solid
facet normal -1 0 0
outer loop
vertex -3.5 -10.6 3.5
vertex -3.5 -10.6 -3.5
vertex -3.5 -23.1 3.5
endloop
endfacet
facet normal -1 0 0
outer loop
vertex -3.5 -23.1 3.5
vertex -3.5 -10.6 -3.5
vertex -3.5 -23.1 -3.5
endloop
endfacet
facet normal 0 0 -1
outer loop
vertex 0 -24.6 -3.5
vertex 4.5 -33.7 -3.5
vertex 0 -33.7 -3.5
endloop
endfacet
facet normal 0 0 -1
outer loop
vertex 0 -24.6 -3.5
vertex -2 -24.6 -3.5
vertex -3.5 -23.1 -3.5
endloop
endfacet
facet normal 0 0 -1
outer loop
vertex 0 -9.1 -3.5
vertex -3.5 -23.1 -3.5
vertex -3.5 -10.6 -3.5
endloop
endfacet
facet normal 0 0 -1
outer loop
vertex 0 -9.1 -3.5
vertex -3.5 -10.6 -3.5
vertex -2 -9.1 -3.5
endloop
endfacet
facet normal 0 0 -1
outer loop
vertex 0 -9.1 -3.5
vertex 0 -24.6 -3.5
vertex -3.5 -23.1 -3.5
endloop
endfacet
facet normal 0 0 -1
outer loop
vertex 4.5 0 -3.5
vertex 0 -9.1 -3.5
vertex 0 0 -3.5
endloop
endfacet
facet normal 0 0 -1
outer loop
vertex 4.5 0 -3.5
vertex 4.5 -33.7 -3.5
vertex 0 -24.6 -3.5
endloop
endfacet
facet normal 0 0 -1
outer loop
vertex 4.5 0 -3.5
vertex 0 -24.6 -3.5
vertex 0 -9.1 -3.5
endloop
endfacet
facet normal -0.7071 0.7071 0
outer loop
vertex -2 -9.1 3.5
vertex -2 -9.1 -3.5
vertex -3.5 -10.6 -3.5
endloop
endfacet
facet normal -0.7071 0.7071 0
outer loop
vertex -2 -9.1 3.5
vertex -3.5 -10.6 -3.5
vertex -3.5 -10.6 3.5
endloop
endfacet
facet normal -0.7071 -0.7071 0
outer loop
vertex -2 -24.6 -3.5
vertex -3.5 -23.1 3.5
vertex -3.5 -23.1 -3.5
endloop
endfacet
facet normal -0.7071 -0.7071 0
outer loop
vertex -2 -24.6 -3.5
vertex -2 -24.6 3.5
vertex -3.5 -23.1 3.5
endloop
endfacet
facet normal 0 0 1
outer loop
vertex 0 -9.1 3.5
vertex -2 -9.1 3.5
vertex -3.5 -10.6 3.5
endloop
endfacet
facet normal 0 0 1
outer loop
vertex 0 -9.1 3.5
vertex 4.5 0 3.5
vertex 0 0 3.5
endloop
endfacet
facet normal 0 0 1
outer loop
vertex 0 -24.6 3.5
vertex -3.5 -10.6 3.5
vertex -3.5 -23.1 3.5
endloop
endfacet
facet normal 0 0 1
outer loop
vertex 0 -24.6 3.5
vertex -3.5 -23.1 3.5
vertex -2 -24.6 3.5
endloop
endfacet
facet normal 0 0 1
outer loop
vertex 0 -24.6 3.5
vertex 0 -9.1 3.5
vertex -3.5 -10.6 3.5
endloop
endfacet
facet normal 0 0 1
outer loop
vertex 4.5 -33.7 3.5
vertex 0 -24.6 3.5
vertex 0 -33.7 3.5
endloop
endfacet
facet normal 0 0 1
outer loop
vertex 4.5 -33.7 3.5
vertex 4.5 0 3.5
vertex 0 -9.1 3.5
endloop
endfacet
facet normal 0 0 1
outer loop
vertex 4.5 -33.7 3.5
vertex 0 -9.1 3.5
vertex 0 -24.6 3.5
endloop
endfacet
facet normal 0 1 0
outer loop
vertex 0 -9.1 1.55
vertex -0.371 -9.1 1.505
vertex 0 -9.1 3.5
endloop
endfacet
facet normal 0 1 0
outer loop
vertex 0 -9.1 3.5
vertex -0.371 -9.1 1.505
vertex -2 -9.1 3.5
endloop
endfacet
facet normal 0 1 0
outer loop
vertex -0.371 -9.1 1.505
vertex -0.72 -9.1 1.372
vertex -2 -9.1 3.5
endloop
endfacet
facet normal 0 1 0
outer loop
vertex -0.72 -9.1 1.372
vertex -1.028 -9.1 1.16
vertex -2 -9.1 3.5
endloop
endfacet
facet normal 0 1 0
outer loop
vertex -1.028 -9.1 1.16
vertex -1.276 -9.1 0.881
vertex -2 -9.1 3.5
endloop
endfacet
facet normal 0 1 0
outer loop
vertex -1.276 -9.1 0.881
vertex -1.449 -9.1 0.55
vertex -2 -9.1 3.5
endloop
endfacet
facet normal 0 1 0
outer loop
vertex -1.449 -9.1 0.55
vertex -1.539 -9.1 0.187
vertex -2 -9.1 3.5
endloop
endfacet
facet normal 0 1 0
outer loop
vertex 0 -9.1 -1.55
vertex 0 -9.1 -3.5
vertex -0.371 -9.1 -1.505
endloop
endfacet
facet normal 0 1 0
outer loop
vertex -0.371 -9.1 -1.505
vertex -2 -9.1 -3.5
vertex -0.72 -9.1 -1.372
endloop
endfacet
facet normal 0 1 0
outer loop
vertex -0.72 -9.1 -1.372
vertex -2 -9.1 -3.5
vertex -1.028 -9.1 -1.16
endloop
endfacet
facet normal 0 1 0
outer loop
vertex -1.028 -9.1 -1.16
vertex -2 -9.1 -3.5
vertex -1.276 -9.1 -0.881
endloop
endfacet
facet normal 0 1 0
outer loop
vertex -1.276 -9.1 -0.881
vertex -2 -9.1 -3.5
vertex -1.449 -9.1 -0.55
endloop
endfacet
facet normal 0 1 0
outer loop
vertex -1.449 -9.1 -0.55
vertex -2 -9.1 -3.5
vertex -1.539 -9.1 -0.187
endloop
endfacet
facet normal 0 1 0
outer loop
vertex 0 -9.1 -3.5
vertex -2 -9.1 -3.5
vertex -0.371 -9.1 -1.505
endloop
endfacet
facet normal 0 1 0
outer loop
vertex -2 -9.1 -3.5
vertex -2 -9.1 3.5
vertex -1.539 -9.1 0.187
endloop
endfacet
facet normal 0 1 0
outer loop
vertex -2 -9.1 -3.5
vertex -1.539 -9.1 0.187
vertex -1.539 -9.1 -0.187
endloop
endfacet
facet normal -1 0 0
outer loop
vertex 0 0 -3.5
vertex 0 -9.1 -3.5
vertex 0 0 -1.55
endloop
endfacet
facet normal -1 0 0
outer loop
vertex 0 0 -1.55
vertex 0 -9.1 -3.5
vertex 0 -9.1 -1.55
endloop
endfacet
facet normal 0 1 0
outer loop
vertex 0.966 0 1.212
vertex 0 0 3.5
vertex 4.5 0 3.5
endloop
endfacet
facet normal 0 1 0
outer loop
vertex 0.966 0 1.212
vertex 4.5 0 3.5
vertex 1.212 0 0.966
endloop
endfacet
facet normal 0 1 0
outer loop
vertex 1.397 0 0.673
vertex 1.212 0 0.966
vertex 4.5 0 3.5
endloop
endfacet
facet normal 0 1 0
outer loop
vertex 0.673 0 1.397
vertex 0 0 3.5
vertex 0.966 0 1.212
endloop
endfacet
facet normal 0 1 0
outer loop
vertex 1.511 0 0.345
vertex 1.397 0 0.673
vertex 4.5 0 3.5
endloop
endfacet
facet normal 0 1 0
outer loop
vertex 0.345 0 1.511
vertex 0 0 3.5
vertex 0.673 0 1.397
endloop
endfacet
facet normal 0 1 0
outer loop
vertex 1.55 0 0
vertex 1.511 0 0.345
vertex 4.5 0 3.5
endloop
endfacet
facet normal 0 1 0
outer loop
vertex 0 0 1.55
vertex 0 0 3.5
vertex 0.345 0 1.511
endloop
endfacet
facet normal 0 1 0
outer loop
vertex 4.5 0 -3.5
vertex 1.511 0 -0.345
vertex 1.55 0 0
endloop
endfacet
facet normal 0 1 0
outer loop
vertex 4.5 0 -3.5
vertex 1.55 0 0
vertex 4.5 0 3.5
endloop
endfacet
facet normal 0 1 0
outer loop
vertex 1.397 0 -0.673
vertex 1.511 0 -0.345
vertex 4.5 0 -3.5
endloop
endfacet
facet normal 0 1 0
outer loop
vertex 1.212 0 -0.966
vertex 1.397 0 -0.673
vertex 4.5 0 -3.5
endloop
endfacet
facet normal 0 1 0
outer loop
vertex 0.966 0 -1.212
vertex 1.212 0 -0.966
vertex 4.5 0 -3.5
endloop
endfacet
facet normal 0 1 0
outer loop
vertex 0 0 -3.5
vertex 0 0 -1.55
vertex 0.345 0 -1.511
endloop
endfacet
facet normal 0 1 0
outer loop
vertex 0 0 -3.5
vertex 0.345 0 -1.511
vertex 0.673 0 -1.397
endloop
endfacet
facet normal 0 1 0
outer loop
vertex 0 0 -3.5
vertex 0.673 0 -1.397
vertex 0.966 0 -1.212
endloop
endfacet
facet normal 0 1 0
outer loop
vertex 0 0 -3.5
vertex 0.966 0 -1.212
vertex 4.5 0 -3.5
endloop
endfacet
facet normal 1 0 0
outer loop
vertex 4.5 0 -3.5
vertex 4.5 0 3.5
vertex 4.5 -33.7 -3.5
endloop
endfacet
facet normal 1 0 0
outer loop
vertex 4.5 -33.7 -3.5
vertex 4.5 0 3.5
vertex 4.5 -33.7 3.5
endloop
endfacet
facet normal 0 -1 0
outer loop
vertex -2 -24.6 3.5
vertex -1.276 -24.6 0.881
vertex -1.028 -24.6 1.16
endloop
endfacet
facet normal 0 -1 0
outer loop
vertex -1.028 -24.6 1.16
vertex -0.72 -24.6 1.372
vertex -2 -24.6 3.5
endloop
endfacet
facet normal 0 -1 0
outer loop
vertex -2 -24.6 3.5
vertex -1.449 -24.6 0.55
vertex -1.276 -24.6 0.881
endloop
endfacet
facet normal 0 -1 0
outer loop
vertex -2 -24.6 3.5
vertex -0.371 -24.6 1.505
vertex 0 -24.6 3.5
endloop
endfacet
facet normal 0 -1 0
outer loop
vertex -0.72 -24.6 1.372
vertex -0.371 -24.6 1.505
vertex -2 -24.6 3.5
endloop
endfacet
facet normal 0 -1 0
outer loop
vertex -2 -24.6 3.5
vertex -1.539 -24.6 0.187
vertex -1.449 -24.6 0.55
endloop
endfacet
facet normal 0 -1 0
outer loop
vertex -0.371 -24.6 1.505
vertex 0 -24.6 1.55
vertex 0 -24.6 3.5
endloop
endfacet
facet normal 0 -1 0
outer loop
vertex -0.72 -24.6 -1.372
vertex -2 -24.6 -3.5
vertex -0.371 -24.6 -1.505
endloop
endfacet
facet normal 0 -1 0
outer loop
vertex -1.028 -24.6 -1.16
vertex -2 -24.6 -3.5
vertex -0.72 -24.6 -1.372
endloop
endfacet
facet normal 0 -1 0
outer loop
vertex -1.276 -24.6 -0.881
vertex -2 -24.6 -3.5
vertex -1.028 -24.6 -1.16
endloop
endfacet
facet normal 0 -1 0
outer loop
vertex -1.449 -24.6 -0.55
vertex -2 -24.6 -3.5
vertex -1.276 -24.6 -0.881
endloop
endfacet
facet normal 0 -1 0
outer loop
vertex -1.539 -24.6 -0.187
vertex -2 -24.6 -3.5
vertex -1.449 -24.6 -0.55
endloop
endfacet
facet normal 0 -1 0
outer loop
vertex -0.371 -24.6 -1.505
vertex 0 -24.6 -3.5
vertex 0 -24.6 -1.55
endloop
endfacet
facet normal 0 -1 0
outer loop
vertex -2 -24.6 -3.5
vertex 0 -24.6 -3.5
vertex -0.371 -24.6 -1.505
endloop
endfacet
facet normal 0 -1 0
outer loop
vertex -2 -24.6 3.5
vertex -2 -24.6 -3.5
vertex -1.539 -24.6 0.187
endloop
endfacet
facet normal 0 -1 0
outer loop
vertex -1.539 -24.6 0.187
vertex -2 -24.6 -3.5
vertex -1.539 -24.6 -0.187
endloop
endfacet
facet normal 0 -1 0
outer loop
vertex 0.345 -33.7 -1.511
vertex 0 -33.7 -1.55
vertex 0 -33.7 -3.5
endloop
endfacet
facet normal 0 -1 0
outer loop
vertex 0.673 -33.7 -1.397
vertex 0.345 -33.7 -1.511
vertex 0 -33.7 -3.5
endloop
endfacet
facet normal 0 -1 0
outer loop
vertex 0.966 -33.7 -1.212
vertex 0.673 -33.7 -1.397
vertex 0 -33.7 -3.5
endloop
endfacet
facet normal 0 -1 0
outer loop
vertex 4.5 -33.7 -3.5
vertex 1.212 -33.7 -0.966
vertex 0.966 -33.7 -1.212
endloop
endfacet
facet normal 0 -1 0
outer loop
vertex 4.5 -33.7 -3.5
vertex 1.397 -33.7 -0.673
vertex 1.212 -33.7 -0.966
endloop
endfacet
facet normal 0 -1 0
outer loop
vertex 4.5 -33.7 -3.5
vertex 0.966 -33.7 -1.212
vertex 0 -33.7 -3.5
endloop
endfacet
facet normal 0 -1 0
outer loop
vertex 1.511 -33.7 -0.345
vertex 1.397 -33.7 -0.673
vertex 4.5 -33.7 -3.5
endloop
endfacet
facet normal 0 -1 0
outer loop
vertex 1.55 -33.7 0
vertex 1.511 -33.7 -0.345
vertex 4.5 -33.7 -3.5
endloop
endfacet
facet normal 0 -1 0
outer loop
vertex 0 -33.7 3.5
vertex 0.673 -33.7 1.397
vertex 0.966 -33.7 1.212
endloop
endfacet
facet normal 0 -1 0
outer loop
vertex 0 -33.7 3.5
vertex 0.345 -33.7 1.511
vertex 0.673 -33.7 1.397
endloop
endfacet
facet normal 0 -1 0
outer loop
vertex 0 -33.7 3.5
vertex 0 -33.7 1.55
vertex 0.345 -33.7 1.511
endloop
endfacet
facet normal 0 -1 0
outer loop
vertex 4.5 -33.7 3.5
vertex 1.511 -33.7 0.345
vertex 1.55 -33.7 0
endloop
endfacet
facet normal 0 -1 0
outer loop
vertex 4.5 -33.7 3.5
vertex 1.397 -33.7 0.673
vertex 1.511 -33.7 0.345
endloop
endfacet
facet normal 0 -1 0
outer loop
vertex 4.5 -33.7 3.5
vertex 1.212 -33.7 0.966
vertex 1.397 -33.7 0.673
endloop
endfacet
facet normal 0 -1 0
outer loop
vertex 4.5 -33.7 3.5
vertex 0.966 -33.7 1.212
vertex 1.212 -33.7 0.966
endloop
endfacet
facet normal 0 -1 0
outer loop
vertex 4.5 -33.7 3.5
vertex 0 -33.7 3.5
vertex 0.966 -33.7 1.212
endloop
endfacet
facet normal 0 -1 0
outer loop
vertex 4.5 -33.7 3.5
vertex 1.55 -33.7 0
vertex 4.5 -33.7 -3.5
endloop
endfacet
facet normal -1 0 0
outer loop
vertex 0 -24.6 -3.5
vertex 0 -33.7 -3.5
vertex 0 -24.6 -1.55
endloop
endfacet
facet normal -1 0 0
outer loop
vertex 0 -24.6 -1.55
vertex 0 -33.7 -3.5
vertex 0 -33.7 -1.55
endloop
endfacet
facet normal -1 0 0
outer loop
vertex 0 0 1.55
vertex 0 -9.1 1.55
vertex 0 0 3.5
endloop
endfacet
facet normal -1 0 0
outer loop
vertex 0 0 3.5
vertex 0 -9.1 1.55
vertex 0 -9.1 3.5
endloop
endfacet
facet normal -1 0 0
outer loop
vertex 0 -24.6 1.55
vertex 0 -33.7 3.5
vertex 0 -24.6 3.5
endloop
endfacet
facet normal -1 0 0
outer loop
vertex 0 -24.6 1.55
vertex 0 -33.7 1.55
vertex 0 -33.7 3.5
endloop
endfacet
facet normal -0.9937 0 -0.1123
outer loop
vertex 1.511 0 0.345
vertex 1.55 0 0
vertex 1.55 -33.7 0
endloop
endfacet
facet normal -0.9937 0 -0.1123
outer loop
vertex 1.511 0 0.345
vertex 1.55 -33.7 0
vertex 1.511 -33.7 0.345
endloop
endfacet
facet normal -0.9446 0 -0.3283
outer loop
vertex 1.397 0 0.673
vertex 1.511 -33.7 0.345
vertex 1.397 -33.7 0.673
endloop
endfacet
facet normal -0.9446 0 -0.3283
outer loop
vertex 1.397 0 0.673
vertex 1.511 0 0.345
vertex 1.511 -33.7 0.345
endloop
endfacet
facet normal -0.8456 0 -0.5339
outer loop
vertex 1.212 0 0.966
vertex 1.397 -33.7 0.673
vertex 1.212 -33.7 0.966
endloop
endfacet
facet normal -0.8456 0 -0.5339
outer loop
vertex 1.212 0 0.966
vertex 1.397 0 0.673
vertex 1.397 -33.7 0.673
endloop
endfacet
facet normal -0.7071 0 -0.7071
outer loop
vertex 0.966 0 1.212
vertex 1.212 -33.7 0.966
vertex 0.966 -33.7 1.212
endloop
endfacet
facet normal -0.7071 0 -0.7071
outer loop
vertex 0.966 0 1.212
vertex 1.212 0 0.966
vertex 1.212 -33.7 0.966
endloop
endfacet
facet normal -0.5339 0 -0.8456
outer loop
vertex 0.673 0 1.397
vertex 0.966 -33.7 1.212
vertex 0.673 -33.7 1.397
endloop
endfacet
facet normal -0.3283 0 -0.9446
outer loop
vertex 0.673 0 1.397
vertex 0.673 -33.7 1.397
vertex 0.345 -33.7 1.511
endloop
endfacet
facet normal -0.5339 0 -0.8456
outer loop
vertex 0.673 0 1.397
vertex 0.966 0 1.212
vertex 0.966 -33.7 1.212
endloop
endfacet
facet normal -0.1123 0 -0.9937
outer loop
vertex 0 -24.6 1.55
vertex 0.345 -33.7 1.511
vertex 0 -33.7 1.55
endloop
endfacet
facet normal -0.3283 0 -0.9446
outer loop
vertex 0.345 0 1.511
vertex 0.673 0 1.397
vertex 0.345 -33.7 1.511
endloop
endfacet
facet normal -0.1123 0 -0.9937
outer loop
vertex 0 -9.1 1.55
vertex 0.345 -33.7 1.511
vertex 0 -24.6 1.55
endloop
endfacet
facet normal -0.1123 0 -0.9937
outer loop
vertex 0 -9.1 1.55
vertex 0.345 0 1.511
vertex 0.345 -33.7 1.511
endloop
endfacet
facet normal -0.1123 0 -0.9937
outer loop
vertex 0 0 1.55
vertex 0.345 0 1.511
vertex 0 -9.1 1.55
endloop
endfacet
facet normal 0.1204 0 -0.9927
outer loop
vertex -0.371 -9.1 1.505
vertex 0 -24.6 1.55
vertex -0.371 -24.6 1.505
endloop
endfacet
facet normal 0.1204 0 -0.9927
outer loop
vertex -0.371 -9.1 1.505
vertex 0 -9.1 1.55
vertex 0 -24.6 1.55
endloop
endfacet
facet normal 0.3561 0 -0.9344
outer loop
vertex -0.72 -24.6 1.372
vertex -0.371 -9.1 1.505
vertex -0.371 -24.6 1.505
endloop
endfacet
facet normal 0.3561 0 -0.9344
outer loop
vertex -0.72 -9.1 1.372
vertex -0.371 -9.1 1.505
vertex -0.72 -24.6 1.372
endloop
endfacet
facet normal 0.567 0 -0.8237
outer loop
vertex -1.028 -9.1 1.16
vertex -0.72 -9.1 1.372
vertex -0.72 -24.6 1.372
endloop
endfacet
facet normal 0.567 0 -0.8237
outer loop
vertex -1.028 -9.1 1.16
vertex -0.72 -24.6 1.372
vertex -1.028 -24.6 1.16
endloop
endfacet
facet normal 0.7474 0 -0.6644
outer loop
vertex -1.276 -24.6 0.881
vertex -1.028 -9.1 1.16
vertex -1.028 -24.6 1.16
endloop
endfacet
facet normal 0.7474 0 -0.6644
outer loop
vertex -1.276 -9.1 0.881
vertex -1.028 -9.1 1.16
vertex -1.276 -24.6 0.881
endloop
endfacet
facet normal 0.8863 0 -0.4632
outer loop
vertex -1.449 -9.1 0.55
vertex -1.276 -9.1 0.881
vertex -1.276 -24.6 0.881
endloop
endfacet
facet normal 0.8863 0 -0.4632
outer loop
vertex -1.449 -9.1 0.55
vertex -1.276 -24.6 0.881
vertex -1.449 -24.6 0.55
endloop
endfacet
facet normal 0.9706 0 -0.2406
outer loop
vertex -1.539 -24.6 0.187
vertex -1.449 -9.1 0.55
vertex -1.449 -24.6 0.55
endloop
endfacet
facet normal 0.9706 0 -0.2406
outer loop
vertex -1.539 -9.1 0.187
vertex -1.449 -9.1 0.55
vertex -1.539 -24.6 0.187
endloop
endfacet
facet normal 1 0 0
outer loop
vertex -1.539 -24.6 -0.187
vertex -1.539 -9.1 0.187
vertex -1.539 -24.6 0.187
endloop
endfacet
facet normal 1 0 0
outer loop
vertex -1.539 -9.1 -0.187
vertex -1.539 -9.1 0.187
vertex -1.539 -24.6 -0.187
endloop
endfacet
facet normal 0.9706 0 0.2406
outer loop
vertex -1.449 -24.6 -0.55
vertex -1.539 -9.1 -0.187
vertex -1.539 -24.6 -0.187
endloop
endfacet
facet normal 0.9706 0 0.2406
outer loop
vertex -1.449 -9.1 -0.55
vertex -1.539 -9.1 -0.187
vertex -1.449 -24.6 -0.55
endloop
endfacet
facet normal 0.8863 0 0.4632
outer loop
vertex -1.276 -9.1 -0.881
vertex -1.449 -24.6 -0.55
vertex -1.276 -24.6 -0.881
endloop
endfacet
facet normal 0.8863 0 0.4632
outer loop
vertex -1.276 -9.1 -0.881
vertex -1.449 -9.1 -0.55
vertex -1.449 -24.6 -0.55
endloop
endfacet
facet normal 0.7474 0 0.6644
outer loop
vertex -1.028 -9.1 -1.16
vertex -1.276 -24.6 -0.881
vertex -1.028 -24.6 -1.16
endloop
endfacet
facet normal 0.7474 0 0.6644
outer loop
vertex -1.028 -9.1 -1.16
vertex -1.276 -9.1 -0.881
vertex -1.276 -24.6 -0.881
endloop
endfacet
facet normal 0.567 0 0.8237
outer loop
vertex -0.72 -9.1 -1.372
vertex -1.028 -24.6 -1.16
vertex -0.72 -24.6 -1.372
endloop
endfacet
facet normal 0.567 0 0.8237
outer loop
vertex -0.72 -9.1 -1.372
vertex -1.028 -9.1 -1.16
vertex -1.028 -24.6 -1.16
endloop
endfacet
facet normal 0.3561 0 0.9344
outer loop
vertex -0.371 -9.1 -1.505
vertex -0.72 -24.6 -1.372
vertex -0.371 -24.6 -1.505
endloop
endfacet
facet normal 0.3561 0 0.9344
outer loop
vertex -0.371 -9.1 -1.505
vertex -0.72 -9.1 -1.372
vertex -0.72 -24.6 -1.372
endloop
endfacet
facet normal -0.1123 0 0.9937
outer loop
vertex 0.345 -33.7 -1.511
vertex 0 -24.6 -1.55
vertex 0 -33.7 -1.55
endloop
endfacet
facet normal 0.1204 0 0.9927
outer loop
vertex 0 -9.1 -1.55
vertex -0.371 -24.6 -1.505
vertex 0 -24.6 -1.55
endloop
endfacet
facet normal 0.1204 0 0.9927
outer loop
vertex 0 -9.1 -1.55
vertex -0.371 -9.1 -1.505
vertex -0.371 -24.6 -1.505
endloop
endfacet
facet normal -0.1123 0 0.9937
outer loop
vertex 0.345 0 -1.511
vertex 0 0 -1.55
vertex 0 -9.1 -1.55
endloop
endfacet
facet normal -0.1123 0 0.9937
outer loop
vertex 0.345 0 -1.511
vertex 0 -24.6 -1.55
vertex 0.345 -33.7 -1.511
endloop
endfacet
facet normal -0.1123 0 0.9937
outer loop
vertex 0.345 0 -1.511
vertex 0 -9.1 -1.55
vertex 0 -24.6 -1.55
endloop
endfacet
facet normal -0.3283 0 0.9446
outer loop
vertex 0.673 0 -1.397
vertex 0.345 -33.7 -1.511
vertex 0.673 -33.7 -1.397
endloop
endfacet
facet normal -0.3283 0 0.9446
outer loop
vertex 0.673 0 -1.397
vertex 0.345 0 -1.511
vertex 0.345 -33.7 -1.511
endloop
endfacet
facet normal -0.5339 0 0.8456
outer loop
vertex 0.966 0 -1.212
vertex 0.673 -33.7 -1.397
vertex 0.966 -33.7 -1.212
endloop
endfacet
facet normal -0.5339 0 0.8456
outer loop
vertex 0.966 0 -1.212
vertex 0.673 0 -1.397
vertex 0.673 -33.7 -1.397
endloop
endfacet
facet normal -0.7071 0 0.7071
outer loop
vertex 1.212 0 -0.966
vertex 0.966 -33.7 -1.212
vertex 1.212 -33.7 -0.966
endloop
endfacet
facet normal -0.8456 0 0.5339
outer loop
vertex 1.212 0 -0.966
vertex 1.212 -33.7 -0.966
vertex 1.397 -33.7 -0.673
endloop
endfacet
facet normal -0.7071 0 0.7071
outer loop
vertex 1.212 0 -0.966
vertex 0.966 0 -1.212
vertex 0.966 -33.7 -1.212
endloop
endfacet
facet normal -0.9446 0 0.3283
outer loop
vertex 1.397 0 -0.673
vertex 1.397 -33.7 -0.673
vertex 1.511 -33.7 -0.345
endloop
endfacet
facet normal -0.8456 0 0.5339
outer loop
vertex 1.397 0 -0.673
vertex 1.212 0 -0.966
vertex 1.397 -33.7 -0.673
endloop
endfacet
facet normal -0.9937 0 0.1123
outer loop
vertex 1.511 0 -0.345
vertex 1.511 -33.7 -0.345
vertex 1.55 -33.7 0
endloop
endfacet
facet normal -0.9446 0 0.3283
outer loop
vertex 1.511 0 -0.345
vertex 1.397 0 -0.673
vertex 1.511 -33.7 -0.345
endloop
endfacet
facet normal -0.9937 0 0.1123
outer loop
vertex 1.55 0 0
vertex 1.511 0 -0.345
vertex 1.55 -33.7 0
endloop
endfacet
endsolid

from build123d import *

# Parameters (mm, degrees)
SKETCH_W        = 7
SKETCH_H        = 7
SKETCH_R        = 1.55
PAD_DEPTH       = 33.7
SKETCH001_W     = 3.5
SKETCH001_H     = 9.1
POCKET_DEPTH    = 7.001
POCKET_FACE10_W = 33.7
POCKET_FACE10_H = 7
PAD001_DEPTH    = 1
CHAMFER_SIZE    = 1.5


with BuildPart() as part:
    # Sketch → Pad (new body)
    with BuildSketch(Plane.XZ):
        Rectangle(SKETCH_W, SKETCH_H)
        Circle(SKETCH_R, mode=Mode.SUBTRACT)
    extrude(amount=PAD_DEPTH)

    # Sketch001 (on Face2 of Pad) → Pocket (cut, through all)
    with BuildSketch(Plane(origin=(0, 0, -3.5), x_dir=(1, 0, 0), z_dir=(0, 0, -1))):
        with Locations((-1.75, 29.15)):
            Rectangle(SKETCH001_W, SKETCH001_H)
        with Locations((-1.75, 4.55)):
            Rectangle(SKETCH001_W, SKETCH001_H)
    extrude(amount=-POCKET_DEPTH, mode=Mode.SUBTRACT)

    # Pocket Face10 → Pad001 (add)
    with BuildSketch(Plane(origin=(3.5, -16.85, 0), x_dir=(0, -1, 0), z_dir=(1, 0, 0))):
        Rectangle(POCKET_FACE10_W, POCKET_FACE10_H)
    extrude(amount=PAD001_DEPTH)

    # Chamfer
    chamfer_edges = [part.edges().sort_by_distance(p)[0] for p in [
        (-3.5, -24.6, 0),
        (-3.5, -9.1, 0),
    ]]
    chamfer(chamfer_edges, length=CHAMFER_SIZE)


solid = part.part
